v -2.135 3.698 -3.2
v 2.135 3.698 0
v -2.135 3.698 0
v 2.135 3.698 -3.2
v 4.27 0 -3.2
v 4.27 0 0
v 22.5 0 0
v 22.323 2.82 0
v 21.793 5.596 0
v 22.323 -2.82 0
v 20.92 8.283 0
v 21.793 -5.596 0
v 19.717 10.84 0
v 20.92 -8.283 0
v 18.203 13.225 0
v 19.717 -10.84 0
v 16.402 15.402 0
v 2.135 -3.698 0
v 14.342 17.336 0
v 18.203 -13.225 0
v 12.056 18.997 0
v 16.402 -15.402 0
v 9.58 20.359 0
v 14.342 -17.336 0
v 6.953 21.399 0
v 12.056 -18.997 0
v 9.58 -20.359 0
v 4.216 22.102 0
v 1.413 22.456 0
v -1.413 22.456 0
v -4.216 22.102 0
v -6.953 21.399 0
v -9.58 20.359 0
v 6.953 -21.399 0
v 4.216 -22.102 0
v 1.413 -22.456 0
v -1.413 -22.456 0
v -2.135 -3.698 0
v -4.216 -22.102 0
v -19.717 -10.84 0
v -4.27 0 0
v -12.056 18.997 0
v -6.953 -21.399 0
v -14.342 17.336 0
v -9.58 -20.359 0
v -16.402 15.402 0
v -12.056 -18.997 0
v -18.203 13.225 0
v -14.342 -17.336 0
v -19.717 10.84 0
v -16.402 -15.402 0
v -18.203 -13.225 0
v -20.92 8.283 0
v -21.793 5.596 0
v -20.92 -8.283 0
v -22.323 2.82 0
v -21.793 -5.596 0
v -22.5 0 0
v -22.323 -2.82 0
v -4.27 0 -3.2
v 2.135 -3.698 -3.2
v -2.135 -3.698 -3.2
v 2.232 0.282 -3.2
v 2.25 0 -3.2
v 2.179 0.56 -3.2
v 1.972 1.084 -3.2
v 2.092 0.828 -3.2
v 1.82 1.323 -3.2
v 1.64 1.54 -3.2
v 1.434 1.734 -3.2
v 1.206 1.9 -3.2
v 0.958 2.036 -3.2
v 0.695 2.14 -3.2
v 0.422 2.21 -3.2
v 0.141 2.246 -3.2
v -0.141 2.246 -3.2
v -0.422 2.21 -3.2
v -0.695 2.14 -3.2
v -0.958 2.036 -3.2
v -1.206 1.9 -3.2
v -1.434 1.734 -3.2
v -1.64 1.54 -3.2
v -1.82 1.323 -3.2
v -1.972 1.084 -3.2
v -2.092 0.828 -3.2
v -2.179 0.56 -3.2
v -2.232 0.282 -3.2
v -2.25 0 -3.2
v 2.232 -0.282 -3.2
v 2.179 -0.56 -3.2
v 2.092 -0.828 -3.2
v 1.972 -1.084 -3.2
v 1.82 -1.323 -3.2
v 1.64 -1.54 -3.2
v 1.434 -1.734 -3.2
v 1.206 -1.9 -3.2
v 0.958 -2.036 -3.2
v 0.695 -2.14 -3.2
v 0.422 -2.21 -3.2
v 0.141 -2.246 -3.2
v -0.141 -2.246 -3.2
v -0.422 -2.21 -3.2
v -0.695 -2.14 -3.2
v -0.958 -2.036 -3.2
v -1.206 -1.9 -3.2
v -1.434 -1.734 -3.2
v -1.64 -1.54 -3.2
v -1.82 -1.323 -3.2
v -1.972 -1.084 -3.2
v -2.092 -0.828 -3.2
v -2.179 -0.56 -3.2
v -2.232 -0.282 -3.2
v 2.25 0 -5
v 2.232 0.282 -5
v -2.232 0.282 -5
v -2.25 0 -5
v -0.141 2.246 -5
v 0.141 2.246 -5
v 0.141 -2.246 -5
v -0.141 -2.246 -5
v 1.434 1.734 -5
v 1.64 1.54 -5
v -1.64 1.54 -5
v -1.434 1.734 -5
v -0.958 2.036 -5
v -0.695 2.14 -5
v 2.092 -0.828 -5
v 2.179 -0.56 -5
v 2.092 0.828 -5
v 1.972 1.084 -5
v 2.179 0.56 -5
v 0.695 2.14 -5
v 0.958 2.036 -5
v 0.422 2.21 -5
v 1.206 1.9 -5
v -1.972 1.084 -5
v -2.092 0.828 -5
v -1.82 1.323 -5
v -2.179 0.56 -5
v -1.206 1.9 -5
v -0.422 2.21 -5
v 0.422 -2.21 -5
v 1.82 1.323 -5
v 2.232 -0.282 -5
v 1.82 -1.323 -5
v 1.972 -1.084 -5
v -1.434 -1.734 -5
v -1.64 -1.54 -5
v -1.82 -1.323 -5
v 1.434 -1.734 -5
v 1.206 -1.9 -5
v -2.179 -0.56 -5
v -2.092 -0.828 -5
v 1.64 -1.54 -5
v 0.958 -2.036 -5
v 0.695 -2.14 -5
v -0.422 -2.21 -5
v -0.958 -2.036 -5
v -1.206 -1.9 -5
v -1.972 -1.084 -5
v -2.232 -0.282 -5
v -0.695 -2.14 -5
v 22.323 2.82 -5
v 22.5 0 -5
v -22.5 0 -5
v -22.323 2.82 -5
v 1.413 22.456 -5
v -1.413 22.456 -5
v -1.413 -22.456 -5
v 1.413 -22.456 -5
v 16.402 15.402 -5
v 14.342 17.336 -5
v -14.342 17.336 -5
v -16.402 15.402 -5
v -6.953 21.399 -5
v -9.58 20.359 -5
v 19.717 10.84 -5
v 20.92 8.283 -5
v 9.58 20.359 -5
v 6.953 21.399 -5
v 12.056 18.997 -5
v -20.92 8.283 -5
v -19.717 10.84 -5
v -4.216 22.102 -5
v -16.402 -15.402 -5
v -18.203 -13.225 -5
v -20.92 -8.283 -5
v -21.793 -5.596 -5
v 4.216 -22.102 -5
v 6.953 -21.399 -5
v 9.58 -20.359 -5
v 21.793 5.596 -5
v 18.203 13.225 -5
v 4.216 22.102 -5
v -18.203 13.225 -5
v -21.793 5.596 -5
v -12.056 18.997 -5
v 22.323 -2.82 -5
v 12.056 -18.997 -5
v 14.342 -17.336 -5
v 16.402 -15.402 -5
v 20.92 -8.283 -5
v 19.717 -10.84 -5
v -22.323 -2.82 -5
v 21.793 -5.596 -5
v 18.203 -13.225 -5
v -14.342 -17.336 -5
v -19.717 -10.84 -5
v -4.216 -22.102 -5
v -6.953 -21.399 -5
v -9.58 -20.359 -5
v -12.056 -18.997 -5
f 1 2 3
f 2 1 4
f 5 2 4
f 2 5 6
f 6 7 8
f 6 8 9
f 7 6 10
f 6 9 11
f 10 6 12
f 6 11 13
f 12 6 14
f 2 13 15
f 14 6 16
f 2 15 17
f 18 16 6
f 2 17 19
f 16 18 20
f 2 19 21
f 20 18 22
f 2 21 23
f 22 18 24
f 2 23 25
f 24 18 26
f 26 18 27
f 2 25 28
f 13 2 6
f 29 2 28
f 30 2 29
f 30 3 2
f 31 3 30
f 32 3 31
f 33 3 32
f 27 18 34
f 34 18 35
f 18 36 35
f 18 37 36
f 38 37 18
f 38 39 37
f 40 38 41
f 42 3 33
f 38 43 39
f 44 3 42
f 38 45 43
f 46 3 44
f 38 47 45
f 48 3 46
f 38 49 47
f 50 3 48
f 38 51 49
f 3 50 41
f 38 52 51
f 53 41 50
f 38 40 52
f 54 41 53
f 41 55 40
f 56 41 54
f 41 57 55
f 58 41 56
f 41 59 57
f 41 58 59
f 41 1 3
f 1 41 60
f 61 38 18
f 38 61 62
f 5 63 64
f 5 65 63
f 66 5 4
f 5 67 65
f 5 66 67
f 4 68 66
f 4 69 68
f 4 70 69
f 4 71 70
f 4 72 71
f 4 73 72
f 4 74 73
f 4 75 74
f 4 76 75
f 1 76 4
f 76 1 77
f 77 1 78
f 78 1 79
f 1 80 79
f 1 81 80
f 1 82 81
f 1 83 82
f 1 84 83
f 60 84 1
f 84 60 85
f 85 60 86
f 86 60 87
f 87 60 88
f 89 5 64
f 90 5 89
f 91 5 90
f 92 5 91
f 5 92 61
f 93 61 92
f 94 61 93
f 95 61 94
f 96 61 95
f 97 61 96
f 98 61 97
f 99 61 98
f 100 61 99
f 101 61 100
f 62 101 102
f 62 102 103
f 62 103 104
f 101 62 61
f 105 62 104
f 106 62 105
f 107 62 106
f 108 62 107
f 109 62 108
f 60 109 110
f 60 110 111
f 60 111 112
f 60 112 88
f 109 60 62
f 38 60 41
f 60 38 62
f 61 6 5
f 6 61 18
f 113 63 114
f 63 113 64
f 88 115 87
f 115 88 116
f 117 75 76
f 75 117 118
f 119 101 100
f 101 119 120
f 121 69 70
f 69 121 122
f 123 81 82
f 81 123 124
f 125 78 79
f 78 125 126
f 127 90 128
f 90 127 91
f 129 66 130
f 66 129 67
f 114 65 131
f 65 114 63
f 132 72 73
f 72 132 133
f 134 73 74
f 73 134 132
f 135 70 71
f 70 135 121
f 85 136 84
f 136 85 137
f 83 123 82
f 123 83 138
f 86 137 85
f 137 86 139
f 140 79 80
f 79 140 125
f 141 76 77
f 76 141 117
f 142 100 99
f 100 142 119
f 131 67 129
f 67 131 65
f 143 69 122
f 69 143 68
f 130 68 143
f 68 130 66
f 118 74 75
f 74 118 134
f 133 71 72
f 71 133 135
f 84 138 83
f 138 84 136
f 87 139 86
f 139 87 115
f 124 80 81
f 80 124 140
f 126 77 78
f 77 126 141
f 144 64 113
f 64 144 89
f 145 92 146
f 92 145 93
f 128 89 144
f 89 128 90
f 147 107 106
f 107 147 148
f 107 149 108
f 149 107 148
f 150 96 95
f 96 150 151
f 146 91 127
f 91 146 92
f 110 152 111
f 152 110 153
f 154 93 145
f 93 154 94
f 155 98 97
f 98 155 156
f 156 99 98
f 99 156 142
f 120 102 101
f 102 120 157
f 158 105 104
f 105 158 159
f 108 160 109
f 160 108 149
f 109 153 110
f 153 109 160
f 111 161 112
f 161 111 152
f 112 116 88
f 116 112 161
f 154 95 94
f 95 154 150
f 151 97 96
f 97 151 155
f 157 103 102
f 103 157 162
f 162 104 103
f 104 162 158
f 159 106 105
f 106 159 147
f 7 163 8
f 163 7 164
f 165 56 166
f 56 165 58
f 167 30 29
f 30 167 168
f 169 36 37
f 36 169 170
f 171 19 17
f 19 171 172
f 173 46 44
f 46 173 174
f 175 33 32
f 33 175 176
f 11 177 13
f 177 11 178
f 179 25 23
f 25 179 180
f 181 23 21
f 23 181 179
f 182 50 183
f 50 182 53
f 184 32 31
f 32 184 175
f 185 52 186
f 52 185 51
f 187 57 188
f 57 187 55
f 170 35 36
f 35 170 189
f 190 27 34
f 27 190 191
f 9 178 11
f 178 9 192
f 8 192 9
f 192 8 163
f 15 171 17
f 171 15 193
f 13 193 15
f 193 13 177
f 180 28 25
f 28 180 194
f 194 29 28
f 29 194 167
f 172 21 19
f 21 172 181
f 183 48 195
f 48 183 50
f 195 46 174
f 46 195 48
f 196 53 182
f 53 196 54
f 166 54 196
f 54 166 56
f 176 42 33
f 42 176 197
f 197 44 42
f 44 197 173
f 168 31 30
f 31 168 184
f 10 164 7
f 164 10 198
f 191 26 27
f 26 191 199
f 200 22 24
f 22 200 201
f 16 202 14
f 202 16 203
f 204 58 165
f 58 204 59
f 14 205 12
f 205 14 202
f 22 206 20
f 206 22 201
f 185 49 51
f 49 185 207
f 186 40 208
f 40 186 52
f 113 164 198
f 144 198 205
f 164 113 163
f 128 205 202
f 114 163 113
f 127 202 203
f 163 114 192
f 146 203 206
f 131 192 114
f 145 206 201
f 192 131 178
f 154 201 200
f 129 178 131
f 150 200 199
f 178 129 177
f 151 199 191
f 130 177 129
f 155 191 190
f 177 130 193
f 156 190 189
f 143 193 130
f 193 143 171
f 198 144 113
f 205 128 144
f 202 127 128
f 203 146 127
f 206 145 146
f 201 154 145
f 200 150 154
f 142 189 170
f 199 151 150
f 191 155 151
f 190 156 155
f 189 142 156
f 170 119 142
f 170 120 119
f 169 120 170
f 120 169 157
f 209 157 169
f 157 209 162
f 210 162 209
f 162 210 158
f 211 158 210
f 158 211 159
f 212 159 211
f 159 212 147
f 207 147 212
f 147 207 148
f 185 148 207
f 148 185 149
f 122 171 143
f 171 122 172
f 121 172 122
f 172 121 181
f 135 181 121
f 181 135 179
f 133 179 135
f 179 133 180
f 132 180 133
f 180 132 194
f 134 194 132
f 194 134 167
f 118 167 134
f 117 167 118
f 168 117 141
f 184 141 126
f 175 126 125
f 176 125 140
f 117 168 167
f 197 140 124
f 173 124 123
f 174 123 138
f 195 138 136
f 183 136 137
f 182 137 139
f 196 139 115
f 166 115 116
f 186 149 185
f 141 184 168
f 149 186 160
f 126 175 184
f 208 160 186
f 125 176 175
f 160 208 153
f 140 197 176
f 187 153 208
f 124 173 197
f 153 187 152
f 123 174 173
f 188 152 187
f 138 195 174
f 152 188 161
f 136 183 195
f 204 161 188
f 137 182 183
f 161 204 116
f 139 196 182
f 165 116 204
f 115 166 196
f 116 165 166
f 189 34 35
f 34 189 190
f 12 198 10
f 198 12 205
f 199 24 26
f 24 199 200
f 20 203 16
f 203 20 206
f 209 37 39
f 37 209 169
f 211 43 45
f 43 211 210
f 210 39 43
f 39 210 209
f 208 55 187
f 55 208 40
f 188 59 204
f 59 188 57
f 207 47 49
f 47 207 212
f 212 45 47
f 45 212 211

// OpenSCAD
$fn = 50;


difference() {
	union() {
		translate(v = [0, 0, -5.0000000000]) {
			cylinder(h = 5.0000000000, r = 22.5000000000);
		}
	}
	union() {
		translate(v = [0, 0, 0]) {
			rotate(a = [0, 0, 0]) {
				difference() {
					union() {
						translate(v = [0, 0, -3.2000000000]) {
							#linear_extrude(height = 3.2000000000) {
								polygon(points = [[4.2698000000, 0.0000000000], [2.1349000000, 3.6977552691], [-2.1349000000, 3.6977552691], [-4.2698000000, 0.0000000000], [-2.1349000000, -3.6977552691], [2.1349000000, -3.6977552691]]);
							}
						}
					}
					union();
				}
			}
		}
		#translate(v = [0, 0, -100.0000000000]) {
			cylinder(h = 200, r = 2.2500000000);
		}
	}
}
